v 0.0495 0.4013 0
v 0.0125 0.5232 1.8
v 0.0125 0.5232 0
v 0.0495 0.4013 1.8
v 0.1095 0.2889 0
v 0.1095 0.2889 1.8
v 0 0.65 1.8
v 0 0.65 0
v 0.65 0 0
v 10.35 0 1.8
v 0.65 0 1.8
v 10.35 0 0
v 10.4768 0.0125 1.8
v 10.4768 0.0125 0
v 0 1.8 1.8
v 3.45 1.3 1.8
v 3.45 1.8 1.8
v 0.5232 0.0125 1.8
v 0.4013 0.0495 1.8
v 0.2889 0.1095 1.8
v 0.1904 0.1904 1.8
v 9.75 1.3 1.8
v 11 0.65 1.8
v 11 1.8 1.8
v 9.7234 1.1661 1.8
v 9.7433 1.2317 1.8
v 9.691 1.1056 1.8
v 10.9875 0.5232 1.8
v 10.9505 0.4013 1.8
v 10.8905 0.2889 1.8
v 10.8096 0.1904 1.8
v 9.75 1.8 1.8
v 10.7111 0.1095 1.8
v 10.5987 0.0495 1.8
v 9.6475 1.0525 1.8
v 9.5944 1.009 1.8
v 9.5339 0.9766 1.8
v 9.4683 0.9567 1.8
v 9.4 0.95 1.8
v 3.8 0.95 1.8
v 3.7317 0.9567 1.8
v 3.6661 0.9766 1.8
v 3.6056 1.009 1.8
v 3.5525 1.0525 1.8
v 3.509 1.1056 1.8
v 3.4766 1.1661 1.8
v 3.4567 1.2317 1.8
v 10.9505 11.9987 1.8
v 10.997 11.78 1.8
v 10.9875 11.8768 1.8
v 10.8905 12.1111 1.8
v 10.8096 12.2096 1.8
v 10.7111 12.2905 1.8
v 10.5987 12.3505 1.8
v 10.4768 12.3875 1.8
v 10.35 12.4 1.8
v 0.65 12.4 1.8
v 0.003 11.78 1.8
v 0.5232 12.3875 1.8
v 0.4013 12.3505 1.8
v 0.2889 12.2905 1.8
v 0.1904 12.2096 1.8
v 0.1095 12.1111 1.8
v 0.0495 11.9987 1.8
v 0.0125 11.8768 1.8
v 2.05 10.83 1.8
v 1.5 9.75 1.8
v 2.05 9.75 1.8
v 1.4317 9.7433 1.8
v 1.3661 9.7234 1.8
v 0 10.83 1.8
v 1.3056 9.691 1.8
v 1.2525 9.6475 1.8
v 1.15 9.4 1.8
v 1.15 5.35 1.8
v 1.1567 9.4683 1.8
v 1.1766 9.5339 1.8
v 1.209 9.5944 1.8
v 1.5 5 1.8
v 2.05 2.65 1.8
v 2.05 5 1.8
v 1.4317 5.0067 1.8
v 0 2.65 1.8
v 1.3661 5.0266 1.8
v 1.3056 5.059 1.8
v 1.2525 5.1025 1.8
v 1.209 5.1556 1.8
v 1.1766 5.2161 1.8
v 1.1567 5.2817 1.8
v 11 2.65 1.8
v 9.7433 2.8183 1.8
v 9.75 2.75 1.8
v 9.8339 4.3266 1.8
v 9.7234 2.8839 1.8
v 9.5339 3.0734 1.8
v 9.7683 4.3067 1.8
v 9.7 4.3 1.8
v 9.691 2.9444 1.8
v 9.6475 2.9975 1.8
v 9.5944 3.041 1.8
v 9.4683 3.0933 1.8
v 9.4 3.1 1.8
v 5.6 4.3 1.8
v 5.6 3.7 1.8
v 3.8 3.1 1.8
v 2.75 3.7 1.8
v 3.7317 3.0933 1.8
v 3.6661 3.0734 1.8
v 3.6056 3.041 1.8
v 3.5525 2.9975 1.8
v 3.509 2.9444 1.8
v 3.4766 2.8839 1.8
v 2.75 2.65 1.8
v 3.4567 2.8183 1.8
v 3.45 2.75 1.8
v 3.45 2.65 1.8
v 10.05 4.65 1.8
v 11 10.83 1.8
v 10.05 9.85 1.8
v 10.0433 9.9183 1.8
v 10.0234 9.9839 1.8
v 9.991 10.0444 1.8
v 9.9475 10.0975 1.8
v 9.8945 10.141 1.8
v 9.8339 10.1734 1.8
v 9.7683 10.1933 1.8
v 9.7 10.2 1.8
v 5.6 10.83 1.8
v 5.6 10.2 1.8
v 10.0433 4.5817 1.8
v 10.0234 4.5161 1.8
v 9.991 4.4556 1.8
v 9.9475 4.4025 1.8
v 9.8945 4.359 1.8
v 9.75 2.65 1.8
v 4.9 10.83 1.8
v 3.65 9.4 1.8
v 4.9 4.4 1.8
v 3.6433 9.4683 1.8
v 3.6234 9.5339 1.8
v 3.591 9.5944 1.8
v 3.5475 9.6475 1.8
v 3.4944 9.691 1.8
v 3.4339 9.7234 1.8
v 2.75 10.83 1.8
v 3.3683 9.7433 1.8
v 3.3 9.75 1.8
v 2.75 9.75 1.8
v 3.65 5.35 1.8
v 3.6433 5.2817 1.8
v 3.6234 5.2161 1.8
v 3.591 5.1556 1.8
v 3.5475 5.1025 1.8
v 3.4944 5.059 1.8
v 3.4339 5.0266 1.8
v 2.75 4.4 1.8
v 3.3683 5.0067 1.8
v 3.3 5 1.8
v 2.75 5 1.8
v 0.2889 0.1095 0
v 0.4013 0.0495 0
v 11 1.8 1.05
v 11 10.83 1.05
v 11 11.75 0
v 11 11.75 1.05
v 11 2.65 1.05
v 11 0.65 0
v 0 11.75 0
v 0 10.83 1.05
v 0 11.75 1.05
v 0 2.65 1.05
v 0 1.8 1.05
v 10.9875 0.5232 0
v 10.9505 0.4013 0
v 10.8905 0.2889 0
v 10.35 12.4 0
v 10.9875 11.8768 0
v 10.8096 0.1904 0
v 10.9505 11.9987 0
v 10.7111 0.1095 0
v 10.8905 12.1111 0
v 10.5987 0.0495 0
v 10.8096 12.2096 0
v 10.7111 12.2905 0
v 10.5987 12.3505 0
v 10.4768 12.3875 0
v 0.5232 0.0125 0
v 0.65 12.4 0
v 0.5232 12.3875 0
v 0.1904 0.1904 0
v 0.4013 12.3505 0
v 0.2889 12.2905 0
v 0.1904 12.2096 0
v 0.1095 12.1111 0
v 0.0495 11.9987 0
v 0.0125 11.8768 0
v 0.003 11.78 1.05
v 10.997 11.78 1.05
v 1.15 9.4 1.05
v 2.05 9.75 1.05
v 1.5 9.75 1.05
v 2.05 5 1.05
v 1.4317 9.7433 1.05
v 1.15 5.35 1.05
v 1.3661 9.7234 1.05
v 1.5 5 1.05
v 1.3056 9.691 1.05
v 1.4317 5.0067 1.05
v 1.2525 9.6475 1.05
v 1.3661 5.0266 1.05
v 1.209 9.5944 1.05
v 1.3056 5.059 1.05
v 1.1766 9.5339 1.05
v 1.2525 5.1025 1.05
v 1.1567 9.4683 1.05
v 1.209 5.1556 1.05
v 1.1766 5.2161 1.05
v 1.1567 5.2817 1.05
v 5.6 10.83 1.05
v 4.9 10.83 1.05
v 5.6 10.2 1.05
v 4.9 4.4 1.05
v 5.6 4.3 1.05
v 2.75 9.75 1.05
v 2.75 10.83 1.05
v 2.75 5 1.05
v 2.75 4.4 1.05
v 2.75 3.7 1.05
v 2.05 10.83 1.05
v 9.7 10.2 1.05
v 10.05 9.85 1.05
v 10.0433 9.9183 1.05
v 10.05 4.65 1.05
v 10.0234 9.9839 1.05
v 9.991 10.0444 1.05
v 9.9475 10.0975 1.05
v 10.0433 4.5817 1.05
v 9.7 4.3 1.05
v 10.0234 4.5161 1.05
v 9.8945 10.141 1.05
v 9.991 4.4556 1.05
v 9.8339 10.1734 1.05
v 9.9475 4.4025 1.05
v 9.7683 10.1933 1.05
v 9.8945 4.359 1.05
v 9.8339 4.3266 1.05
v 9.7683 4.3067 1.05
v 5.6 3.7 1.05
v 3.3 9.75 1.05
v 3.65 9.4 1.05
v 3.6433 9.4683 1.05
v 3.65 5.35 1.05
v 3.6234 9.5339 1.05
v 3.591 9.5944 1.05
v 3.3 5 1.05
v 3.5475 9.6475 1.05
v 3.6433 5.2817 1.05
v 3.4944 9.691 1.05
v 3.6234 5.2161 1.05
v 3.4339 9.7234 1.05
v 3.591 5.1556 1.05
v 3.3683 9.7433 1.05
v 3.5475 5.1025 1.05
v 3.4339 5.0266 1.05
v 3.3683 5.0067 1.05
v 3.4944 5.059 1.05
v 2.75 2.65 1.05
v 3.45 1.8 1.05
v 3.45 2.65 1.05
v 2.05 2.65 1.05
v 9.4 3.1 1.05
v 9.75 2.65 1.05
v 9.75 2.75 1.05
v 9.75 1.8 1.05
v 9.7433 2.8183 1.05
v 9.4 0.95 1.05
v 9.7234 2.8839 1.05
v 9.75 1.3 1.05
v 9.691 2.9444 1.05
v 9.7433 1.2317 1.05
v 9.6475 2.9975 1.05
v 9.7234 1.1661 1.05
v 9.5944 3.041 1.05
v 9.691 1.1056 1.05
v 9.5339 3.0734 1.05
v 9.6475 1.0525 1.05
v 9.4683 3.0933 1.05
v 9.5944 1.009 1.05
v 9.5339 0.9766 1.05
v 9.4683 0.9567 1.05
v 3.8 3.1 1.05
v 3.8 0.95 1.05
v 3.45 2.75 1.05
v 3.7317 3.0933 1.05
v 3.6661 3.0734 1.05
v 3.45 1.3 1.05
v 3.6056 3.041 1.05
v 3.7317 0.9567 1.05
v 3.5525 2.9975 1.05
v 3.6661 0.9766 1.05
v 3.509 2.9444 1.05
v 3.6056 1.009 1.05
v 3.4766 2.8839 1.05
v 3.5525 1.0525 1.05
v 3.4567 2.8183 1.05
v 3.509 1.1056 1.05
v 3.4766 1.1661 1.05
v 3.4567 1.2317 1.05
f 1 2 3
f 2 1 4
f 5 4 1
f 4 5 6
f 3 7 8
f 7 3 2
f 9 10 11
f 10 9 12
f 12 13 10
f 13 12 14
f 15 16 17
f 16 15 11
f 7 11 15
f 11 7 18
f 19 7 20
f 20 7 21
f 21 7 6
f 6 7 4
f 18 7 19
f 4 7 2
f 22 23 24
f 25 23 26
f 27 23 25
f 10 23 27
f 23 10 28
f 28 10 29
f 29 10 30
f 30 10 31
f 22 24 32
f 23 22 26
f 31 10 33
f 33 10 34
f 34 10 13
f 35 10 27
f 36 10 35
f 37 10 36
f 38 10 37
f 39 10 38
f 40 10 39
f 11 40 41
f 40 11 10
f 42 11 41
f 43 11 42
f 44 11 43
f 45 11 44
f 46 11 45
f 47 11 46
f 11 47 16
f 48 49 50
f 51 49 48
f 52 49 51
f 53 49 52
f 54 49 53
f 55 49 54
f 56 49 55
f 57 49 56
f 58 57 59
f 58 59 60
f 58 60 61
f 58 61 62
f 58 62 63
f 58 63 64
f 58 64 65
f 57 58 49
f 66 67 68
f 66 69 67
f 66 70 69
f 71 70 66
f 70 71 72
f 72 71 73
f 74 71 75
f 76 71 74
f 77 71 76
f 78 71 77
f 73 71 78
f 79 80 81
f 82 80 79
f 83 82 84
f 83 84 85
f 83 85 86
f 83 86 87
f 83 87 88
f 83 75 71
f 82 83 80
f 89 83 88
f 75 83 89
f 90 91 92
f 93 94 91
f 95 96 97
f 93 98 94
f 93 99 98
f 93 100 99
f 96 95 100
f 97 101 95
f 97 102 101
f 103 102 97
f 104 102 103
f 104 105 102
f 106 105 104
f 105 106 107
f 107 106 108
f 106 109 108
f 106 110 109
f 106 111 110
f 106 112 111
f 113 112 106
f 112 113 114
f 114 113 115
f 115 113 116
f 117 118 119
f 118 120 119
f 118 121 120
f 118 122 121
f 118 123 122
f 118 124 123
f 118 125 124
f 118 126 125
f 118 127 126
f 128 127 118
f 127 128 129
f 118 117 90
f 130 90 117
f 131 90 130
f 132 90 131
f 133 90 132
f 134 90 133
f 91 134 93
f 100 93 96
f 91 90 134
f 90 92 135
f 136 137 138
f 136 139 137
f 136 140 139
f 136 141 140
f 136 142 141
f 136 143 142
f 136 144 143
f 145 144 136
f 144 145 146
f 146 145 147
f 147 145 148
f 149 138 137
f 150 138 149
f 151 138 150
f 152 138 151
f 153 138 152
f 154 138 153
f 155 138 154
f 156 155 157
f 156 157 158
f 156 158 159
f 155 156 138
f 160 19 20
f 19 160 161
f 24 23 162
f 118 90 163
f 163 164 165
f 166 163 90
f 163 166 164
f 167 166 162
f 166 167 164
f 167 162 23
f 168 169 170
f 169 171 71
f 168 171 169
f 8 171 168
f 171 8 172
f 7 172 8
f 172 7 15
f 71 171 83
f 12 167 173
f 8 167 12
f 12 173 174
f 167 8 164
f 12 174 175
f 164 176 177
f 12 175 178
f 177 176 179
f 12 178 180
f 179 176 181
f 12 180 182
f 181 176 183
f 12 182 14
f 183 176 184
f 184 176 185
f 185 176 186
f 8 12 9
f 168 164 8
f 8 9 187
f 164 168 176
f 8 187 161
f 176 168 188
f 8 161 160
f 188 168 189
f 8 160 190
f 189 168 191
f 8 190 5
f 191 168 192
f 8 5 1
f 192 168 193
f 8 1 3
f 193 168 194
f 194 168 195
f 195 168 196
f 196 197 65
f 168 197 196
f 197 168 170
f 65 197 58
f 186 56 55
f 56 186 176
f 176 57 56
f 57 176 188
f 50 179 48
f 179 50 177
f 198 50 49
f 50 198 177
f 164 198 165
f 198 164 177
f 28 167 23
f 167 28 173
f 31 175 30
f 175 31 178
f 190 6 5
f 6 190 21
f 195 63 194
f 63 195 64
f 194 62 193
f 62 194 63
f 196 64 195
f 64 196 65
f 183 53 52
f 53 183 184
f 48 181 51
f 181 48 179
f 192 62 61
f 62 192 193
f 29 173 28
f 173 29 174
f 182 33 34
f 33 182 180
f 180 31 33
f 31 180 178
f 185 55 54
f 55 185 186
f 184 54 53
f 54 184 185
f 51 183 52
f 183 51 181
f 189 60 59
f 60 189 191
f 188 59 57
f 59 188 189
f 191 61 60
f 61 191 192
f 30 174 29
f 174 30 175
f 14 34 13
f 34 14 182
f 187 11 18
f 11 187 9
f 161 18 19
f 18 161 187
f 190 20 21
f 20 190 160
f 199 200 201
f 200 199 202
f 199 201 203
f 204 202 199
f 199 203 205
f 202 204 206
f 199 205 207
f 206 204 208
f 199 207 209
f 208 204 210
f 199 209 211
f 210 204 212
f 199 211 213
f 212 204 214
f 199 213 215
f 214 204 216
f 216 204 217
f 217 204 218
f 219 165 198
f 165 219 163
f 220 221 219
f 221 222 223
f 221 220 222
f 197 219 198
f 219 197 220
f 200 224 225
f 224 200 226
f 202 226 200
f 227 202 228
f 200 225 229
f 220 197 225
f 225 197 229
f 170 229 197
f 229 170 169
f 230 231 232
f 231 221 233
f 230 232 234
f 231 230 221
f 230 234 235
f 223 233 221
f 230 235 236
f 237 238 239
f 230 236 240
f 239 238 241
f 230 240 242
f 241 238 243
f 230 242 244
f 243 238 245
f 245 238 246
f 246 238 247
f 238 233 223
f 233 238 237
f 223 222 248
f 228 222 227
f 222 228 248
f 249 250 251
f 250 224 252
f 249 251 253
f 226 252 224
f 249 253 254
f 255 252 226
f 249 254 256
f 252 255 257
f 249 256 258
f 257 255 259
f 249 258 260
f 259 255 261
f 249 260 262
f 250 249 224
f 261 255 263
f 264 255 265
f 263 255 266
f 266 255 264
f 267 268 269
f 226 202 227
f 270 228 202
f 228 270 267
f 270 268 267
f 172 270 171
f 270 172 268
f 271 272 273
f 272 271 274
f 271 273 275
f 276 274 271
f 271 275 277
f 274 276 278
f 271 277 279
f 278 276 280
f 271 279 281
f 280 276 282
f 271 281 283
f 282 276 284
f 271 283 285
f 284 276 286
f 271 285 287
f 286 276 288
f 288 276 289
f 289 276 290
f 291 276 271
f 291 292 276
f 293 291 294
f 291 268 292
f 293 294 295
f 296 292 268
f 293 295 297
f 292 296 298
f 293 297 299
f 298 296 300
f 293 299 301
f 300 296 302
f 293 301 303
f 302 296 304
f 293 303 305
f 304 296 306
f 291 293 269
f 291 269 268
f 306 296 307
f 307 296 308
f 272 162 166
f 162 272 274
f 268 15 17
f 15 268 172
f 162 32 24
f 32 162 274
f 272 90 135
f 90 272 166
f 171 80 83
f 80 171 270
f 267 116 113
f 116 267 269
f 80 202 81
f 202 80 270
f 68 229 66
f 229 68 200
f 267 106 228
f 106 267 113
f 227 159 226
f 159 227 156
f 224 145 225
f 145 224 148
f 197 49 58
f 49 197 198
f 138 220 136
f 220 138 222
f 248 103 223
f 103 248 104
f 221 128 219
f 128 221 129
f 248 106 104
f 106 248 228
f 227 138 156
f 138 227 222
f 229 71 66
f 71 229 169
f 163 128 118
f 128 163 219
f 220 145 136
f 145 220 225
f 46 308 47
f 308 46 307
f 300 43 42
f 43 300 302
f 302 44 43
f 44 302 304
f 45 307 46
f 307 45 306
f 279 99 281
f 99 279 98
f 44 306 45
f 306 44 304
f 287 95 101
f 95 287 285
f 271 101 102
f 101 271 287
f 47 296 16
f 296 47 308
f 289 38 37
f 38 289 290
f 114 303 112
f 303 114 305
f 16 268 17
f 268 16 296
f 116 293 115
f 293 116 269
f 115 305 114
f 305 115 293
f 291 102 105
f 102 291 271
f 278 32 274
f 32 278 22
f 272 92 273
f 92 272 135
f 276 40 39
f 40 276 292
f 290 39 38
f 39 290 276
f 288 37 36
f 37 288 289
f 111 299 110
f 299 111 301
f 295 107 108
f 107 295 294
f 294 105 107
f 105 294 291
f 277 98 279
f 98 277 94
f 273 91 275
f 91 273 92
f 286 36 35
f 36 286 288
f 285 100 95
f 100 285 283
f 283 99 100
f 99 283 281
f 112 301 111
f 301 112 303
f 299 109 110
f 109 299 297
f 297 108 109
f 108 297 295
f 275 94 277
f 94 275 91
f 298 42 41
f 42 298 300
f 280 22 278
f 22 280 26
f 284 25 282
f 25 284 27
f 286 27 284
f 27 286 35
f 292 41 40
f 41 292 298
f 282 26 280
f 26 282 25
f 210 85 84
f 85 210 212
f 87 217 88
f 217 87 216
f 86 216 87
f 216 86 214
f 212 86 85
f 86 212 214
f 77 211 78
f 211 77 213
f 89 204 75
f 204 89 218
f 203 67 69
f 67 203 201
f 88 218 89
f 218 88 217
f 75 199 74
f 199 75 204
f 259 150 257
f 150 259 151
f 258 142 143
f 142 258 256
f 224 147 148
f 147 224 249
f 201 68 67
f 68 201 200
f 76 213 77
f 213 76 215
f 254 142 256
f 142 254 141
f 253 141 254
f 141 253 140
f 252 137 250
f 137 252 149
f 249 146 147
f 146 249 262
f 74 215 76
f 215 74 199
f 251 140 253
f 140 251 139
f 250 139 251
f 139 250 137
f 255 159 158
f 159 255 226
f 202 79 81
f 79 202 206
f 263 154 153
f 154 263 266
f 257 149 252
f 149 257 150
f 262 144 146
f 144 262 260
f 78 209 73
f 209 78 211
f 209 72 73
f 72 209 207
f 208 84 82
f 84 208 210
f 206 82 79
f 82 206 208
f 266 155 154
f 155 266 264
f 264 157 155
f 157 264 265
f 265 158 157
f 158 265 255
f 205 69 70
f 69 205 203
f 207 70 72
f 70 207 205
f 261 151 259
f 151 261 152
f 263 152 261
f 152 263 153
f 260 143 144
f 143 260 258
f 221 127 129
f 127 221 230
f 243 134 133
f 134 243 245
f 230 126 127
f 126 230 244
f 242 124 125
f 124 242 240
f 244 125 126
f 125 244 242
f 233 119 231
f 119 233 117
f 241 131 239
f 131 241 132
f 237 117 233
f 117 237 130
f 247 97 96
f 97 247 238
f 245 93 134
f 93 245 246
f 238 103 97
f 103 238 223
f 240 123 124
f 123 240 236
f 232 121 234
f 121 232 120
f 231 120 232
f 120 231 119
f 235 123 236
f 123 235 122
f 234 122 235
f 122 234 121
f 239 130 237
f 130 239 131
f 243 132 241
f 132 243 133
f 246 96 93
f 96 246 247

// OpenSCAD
// VentSys servo feedback network carrier, V2
// Compact 11mm x 12.4mm glue-down carrier for:
//   servo feedback -> 10k -> ADC
//                         |
//                       node
//                      /    \
//                 20k to GND  100nF to GND
//
// The STL intentionally has no text, no raised pads, and no perimeter rim.
// Channels and component pockets are recessed so wires can stay on one plane.

$fn = 32;

plate_x = 11.0;
plate_y = 12.4;
plate_z = 1.8;
corner_r = 0.65;

recess_d = 0.75;

module rounded_rect_2d(x, y, r) {
  hull() {
    translate([r, r]) circle(r = r);
    translate([x - r, r]) circle(r = r);
    translate([r, y - r]) circle(r = r);
    translate([x - r, y - r]) circle(r = r);
  }
}

module rounded_cut(x, y, z, r) {
  linear_extrude(height = z)
    rounded_rect_2d(x, y, min(r, x / 2, y / 2));
}

module recess_rect(x, y, sx, sy, depth, r = 0) {
  translate([x, y, plate_z - depth])
    if (r > 0) {
      rounded_cut(sx, sy, depth + 0.04, r);
    } else {
      cube([sx, sy, depth + 0.04]);
    }
}

difference() {
  rounded_cut(plate_x, plate_y, plate_z, corner_r);

  // Recessed wire channels, all open to edges where external wires enter/exit.
  recess_rect(0, 1.8, 11.0, 0.85, recess_d);     // ADC <-> 10k <-> FB
  recess_rect(2.05, 1.8, 0.7, 9.98, recess_d);   // 20k leg down to GND
  recess_rect(4.9, 3.7, 0.7, 8.08, recess_d);    // 100nF leg down to GND
  recess_rect(2.05, 3.7, 3.2, 0.7, recess_d);    // capacitor branch to node
  recess_rect(0, 10.83, 11.0, 0.95, recess_d);   // GND bus

  // Recessed component body pockets.
  recess_rect(3.45, 0.95, 6.3, 2.15, recess_d, 0.35);  // 10k resistor
  recess_rect(1.15, 5.0, 2.5, 4.75, recess_d, 0.35);   // 20k resistor
  recess_rect(5.25, 4.3, 4.8, 5.9, recess_d, 0.35);    // 100nF capacitor
}
